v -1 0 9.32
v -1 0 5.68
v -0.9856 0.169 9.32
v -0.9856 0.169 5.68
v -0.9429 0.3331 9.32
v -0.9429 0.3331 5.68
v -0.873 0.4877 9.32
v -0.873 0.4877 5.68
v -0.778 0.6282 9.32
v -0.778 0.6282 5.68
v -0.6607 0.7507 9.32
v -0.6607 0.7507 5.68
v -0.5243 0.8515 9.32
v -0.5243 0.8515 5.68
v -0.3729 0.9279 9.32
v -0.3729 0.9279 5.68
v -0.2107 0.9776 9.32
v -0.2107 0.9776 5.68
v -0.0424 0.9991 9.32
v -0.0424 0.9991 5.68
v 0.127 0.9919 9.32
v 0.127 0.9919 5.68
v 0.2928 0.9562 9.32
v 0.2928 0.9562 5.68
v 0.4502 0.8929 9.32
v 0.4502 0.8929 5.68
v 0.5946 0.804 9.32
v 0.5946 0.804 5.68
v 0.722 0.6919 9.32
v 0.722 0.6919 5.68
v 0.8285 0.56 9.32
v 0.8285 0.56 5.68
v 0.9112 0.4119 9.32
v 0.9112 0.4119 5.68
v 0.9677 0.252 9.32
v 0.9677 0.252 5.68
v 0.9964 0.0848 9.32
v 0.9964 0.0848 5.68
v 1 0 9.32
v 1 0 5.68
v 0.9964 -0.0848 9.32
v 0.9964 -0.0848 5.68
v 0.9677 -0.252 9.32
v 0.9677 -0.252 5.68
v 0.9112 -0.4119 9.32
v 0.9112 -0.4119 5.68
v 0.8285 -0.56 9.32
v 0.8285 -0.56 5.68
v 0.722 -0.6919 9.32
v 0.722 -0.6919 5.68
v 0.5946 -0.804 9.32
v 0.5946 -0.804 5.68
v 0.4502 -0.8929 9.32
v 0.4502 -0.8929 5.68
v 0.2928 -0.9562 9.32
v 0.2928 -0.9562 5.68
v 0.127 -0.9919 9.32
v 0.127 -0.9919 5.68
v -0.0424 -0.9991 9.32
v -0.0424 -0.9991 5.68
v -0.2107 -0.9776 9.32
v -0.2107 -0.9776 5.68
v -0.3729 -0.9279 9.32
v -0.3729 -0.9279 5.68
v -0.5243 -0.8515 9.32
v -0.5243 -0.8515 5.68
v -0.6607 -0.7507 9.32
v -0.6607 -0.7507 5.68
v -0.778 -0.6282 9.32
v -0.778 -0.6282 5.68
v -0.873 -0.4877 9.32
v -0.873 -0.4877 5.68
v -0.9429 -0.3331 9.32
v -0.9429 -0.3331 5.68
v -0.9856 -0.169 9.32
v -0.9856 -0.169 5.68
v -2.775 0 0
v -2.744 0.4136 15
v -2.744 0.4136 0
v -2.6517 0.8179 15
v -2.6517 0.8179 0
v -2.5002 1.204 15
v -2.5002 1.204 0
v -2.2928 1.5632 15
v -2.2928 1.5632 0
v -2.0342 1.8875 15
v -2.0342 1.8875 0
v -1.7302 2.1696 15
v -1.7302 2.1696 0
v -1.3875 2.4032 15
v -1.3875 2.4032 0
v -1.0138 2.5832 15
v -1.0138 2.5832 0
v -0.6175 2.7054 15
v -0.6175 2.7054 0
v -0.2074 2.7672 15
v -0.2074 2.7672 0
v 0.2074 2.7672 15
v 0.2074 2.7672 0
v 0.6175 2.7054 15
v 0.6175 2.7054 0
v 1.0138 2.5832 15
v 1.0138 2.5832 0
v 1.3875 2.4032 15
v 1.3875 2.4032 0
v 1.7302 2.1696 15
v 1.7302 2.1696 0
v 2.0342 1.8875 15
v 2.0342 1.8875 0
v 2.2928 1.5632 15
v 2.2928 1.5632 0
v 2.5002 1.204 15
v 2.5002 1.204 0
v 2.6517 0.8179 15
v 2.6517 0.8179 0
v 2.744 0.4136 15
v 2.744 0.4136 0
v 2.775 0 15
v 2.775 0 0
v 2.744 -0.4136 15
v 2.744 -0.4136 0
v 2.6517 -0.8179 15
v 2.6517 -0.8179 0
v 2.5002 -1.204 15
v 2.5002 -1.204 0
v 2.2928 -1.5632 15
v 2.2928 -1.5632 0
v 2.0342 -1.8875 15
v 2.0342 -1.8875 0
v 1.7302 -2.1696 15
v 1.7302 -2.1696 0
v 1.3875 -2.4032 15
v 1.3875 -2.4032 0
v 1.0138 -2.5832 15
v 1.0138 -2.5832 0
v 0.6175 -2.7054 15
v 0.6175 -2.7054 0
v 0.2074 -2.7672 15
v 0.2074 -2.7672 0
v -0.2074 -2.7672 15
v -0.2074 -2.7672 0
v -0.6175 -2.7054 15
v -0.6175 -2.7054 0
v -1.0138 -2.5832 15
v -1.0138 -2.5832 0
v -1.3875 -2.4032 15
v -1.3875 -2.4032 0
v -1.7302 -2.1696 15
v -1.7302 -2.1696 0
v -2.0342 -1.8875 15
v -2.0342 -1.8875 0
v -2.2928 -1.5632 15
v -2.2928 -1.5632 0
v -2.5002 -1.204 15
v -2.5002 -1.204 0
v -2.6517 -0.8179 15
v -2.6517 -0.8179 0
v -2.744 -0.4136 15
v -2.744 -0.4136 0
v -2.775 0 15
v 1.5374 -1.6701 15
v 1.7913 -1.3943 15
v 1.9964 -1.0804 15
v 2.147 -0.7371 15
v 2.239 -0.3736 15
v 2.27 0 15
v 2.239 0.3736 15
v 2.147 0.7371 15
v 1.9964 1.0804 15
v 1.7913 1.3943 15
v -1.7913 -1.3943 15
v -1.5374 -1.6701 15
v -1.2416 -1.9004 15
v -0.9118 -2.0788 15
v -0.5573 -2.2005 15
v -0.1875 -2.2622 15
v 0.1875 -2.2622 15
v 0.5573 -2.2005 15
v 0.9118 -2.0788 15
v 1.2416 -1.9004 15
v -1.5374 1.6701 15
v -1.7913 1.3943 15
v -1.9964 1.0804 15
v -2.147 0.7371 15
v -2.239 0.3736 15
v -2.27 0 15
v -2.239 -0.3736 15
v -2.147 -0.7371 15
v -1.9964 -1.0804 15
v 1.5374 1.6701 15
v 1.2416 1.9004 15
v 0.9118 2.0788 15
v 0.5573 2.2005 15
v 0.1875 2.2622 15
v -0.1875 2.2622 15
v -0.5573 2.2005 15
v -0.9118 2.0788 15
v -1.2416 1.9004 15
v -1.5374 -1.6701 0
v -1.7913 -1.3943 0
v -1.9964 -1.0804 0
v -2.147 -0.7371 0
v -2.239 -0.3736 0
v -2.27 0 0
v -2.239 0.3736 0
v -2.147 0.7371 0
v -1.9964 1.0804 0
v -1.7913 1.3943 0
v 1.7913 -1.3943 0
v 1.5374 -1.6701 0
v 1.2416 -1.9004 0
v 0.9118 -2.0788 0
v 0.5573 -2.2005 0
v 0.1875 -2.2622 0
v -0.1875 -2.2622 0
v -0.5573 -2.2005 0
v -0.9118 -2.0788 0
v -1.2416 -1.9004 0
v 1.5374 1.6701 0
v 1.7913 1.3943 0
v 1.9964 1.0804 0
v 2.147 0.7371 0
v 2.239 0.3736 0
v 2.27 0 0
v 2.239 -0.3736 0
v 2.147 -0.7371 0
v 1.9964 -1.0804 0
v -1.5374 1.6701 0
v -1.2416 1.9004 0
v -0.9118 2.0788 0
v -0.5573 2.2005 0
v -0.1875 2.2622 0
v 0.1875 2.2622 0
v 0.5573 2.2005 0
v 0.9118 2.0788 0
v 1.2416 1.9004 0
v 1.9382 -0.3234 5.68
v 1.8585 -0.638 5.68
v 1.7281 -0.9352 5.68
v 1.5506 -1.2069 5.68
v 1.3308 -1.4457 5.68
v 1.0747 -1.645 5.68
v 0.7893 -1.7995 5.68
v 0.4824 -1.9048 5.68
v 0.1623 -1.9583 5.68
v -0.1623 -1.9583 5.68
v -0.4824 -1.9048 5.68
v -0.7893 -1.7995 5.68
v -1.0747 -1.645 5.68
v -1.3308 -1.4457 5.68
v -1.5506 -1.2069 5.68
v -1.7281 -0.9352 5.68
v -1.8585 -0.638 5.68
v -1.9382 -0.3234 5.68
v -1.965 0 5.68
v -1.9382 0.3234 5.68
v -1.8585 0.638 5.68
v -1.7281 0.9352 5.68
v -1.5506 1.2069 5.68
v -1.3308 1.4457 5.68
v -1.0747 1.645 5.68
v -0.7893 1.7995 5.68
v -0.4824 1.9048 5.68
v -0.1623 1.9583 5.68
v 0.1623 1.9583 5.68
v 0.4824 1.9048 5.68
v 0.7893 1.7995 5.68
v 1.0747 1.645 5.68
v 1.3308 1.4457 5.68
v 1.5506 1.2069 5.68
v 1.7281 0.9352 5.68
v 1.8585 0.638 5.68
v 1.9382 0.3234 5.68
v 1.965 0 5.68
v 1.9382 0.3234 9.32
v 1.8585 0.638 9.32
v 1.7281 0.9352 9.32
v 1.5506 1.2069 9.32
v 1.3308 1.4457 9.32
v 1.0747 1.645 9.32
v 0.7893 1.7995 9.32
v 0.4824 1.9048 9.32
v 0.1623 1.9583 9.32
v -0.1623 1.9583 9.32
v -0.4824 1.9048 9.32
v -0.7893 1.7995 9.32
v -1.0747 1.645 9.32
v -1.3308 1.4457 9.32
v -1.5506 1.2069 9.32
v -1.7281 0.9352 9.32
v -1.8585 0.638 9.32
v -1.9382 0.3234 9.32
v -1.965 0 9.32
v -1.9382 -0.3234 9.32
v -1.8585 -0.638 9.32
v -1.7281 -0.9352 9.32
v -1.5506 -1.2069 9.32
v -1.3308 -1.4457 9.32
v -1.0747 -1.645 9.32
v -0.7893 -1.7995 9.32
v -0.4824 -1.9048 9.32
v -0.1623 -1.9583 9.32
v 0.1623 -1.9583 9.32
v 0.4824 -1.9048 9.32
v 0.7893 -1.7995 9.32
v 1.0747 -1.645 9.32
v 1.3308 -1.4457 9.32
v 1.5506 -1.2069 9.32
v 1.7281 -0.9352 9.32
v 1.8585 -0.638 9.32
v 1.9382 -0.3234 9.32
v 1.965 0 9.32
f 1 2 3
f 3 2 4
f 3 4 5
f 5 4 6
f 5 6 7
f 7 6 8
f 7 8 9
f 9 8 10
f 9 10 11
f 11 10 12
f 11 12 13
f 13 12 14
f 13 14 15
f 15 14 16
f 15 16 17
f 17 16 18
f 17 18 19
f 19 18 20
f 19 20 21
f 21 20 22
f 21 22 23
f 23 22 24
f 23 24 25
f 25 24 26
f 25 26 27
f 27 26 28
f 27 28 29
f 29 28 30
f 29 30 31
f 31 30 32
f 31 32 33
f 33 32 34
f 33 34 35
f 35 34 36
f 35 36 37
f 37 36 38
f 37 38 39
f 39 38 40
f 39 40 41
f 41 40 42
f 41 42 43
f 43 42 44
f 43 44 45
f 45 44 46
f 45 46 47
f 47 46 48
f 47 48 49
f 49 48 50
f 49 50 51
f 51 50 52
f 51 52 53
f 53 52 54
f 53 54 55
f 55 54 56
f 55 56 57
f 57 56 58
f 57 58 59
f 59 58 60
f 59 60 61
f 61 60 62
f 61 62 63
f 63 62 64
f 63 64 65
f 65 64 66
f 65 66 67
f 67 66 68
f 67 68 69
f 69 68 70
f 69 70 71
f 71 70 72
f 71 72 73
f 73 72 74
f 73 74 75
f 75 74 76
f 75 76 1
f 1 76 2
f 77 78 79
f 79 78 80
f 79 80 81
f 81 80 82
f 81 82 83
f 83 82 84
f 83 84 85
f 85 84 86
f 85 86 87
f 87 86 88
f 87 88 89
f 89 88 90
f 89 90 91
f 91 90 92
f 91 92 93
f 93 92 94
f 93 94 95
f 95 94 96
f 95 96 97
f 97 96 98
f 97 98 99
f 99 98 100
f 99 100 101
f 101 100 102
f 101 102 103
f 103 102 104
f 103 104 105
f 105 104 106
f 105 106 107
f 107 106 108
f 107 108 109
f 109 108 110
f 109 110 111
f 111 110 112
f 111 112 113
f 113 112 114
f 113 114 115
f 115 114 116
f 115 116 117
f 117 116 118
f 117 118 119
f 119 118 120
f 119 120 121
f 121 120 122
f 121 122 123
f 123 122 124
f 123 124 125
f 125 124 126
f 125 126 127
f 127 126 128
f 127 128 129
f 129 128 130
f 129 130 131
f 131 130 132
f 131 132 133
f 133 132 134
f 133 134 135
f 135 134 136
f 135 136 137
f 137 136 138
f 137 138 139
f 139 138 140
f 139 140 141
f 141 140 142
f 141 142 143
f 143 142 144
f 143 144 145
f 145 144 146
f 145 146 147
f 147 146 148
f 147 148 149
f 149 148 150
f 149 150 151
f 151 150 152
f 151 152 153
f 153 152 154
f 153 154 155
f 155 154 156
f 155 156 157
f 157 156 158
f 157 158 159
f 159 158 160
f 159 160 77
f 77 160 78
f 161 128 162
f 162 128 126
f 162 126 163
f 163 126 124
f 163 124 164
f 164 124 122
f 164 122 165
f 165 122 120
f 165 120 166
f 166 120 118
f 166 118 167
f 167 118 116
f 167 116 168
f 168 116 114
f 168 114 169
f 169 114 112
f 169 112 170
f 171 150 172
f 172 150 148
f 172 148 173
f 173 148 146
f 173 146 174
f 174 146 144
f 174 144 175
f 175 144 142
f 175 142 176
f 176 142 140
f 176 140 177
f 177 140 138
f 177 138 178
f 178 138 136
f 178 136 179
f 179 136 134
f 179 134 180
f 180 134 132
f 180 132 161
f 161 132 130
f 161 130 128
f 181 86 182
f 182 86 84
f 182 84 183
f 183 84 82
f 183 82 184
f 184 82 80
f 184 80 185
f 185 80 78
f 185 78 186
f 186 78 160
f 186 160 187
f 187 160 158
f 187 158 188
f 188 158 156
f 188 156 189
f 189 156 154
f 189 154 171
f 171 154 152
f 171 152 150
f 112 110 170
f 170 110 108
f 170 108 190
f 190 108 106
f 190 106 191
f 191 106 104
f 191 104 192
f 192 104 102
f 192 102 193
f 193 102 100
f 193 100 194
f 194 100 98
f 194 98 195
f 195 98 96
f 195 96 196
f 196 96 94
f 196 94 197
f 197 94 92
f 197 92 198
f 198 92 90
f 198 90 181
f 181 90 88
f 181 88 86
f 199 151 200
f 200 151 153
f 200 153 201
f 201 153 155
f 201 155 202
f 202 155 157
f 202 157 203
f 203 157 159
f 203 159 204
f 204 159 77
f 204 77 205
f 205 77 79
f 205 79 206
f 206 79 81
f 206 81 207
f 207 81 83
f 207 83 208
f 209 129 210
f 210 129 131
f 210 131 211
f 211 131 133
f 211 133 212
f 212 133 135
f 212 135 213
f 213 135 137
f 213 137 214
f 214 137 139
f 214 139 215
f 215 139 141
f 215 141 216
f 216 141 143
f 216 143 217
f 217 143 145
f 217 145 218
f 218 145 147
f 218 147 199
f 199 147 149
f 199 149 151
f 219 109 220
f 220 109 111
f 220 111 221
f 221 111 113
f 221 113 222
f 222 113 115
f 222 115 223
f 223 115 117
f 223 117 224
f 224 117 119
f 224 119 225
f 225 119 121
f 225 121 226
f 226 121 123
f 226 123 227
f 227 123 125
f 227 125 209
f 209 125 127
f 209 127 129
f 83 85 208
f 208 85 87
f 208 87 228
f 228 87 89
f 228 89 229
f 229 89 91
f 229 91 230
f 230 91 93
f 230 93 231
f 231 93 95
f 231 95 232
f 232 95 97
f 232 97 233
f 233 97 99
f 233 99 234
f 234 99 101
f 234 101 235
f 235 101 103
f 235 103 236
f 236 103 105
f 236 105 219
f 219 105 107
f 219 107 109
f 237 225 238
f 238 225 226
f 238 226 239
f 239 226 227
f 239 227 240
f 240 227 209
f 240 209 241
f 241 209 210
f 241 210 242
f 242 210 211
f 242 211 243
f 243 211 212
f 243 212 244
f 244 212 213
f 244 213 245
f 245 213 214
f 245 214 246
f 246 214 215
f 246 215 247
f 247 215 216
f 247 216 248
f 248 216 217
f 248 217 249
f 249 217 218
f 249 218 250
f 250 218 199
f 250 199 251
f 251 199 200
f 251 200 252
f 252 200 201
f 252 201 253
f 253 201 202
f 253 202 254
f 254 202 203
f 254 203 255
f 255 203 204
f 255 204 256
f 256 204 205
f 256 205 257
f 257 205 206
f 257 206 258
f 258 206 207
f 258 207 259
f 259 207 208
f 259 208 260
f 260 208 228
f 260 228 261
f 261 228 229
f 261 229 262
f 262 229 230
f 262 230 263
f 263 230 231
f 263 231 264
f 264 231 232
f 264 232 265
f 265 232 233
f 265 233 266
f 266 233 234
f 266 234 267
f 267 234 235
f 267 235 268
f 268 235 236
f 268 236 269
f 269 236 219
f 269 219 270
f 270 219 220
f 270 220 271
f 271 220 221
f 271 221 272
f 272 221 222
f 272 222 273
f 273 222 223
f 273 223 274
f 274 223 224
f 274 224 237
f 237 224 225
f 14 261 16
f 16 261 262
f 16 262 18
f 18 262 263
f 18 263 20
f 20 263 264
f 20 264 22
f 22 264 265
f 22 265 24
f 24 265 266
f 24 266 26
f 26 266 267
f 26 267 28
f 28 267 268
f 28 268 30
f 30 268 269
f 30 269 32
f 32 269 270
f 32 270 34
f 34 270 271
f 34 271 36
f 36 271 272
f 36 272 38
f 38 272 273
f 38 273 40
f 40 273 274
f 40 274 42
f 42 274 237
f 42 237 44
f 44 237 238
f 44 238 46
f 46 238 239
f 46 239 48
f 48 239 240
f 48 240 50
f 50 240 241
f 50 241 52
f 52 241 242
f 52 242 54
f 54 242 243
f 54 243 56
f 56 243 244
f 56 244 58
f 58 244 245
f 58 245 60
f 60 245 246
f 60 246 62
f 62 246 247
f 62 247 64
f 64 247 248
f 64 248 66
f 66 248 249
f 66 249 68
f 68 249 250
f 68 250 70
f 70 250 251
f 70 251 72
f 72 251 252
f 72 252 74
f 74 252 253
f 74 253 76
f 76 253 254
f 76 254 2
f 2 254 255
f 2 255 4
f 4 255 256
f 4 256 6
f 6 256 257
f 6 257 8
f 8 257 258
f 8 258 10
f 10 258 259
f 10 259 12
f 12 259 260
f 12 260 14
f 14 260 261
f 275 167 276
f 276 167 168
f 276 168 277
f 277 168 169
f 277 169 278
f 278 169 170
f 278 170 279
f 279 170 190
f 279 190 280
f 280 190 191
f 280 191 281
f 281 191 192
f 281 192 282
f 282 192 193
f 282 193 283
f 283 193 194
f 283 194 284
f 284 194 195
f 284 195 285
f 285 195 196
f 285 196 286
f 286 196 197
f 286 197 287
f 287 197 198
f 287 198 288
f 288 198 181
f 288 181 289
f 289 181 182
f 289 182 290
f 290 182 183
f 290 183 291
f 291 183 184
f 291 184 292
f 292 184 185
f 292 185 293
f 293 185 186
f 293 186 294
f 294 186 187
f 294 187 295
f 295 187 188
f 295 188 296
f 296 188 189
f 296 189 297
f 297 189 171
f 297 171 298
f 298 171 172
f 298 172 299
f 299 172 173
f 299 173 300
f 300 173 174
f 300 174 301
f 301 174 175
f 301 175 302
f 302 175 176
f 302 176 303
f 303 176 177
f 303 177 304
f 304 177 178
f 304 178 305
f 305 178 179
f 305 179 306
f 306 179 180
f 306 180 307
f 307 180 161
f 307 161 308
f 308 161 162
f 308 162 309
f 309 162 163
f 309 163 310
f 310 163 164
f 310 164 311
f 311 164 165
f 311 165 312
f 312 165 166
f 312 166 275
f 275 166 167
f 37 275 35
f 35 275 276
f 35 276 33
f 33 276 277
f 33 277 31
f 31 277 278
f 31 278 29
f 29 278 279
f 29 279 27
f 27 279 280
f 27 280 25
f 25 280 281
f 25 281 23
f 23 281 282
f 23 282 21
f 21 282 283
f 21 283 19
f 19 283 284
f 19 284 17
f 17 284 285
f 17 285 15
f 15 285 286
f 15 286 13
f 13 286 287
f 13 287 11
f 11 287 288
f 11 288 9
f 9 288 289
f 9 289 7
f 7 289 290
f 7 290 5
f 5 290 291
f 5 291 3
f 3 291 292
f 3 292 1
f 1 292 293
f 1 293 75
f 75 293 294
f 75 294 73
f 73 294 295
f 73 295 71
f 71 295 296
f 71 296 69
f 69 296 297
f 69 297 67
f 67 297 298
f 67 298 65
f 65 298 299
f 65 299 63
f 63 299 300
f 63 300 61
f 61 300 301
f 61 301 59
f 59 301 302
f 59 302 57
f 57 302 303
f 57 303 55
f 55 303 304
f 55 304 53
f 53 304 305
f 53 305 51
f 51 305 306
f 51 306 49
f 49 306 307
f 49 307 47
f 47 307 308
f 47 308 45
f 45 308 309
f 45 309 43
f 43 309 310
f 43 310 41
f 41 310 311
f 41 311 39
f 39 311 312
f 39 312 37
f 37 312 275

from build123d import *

# Parameters (mm, degrees)
SKETCH1_R           = 2.775
BOSS_EXTRUDE1_DEPTH = 15
SKETCH2_R           = 2.27
CUT_EXTRUDE1_DEPTH  = 5.68
CUT_EXTRUDE1_TAPER  = 3.074
SKETCH7_R           = 1
CUT_EXTRUDE2_DEPTH  = 16
SKETCH9_R           = 2.27
CUT_EXTRUDE3_DEPTH  = 5.68
CUT_EXTRUDE3_TAPER  = 3.074


with BuildPart() as part:
    # Sketch1 → Boss-Extrude1 (new body)
    with BuildSketch(Plane.XY):
        Circle(SKETCH1_R)
    extrude(amount=BOSS_EXTRUDE1_DEPTH)

    # Sketch2 → Cut-Extrude1 (cut)
    with BuildSketch(Plane.XY):
        Circle(SKETCH2_R)
    extrude(amount=CUT_EXTRUDE1_DEPTH, taper=CUT_EXTRUDE1_TAPER, mode=Mode.SUBTRACT)

    # Sketch7 → Cut-Extrude2 (cut, through all)
    with BuildSketch(Plane.XY):
        Circle(SKETCH7_R)
    extrude(amount=CUT_EXTRUDE2_DEPTH, mode=Mode.SUBTRACT)

    # Sketch9 → Cut-Extrude3 (cut)
    with BuildSketch(Plane.XY.offset(15)):
        Circle(SKETCH9_R)
    extrude(amount=-CUT_EXTRUDE3_DEPTH, taper=CUT_EXTRUDE3_TAPER, mode=Mode.SUBTRACT)


solid = part.part
